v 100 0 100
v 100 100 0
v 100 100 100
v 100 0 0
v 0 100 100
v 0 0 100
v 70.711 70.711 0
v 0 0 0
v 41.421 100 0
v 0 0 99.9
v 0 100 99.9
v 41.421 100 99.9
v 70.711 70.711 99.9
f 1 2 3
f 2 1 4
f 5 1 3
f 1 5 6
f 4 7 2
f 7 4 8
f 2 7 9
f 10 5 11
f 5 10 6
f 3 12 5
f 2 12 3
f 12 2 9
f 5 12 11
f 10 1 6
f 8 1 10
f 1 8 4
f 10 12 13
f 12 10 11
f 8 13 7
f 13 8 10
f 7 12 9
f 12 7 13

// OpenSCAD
module reflection(width, height, depth, angle, center) {
  difference() {
    cube([width, height, depth]);
    translate([0, 0, -0.1])
      rotate([0, 0, angle])
        cube([width, height, depth]);
  }
}

// Example usage:
reflection(width = 100, height = 100, depth = 100, angle = 45, center = false);
